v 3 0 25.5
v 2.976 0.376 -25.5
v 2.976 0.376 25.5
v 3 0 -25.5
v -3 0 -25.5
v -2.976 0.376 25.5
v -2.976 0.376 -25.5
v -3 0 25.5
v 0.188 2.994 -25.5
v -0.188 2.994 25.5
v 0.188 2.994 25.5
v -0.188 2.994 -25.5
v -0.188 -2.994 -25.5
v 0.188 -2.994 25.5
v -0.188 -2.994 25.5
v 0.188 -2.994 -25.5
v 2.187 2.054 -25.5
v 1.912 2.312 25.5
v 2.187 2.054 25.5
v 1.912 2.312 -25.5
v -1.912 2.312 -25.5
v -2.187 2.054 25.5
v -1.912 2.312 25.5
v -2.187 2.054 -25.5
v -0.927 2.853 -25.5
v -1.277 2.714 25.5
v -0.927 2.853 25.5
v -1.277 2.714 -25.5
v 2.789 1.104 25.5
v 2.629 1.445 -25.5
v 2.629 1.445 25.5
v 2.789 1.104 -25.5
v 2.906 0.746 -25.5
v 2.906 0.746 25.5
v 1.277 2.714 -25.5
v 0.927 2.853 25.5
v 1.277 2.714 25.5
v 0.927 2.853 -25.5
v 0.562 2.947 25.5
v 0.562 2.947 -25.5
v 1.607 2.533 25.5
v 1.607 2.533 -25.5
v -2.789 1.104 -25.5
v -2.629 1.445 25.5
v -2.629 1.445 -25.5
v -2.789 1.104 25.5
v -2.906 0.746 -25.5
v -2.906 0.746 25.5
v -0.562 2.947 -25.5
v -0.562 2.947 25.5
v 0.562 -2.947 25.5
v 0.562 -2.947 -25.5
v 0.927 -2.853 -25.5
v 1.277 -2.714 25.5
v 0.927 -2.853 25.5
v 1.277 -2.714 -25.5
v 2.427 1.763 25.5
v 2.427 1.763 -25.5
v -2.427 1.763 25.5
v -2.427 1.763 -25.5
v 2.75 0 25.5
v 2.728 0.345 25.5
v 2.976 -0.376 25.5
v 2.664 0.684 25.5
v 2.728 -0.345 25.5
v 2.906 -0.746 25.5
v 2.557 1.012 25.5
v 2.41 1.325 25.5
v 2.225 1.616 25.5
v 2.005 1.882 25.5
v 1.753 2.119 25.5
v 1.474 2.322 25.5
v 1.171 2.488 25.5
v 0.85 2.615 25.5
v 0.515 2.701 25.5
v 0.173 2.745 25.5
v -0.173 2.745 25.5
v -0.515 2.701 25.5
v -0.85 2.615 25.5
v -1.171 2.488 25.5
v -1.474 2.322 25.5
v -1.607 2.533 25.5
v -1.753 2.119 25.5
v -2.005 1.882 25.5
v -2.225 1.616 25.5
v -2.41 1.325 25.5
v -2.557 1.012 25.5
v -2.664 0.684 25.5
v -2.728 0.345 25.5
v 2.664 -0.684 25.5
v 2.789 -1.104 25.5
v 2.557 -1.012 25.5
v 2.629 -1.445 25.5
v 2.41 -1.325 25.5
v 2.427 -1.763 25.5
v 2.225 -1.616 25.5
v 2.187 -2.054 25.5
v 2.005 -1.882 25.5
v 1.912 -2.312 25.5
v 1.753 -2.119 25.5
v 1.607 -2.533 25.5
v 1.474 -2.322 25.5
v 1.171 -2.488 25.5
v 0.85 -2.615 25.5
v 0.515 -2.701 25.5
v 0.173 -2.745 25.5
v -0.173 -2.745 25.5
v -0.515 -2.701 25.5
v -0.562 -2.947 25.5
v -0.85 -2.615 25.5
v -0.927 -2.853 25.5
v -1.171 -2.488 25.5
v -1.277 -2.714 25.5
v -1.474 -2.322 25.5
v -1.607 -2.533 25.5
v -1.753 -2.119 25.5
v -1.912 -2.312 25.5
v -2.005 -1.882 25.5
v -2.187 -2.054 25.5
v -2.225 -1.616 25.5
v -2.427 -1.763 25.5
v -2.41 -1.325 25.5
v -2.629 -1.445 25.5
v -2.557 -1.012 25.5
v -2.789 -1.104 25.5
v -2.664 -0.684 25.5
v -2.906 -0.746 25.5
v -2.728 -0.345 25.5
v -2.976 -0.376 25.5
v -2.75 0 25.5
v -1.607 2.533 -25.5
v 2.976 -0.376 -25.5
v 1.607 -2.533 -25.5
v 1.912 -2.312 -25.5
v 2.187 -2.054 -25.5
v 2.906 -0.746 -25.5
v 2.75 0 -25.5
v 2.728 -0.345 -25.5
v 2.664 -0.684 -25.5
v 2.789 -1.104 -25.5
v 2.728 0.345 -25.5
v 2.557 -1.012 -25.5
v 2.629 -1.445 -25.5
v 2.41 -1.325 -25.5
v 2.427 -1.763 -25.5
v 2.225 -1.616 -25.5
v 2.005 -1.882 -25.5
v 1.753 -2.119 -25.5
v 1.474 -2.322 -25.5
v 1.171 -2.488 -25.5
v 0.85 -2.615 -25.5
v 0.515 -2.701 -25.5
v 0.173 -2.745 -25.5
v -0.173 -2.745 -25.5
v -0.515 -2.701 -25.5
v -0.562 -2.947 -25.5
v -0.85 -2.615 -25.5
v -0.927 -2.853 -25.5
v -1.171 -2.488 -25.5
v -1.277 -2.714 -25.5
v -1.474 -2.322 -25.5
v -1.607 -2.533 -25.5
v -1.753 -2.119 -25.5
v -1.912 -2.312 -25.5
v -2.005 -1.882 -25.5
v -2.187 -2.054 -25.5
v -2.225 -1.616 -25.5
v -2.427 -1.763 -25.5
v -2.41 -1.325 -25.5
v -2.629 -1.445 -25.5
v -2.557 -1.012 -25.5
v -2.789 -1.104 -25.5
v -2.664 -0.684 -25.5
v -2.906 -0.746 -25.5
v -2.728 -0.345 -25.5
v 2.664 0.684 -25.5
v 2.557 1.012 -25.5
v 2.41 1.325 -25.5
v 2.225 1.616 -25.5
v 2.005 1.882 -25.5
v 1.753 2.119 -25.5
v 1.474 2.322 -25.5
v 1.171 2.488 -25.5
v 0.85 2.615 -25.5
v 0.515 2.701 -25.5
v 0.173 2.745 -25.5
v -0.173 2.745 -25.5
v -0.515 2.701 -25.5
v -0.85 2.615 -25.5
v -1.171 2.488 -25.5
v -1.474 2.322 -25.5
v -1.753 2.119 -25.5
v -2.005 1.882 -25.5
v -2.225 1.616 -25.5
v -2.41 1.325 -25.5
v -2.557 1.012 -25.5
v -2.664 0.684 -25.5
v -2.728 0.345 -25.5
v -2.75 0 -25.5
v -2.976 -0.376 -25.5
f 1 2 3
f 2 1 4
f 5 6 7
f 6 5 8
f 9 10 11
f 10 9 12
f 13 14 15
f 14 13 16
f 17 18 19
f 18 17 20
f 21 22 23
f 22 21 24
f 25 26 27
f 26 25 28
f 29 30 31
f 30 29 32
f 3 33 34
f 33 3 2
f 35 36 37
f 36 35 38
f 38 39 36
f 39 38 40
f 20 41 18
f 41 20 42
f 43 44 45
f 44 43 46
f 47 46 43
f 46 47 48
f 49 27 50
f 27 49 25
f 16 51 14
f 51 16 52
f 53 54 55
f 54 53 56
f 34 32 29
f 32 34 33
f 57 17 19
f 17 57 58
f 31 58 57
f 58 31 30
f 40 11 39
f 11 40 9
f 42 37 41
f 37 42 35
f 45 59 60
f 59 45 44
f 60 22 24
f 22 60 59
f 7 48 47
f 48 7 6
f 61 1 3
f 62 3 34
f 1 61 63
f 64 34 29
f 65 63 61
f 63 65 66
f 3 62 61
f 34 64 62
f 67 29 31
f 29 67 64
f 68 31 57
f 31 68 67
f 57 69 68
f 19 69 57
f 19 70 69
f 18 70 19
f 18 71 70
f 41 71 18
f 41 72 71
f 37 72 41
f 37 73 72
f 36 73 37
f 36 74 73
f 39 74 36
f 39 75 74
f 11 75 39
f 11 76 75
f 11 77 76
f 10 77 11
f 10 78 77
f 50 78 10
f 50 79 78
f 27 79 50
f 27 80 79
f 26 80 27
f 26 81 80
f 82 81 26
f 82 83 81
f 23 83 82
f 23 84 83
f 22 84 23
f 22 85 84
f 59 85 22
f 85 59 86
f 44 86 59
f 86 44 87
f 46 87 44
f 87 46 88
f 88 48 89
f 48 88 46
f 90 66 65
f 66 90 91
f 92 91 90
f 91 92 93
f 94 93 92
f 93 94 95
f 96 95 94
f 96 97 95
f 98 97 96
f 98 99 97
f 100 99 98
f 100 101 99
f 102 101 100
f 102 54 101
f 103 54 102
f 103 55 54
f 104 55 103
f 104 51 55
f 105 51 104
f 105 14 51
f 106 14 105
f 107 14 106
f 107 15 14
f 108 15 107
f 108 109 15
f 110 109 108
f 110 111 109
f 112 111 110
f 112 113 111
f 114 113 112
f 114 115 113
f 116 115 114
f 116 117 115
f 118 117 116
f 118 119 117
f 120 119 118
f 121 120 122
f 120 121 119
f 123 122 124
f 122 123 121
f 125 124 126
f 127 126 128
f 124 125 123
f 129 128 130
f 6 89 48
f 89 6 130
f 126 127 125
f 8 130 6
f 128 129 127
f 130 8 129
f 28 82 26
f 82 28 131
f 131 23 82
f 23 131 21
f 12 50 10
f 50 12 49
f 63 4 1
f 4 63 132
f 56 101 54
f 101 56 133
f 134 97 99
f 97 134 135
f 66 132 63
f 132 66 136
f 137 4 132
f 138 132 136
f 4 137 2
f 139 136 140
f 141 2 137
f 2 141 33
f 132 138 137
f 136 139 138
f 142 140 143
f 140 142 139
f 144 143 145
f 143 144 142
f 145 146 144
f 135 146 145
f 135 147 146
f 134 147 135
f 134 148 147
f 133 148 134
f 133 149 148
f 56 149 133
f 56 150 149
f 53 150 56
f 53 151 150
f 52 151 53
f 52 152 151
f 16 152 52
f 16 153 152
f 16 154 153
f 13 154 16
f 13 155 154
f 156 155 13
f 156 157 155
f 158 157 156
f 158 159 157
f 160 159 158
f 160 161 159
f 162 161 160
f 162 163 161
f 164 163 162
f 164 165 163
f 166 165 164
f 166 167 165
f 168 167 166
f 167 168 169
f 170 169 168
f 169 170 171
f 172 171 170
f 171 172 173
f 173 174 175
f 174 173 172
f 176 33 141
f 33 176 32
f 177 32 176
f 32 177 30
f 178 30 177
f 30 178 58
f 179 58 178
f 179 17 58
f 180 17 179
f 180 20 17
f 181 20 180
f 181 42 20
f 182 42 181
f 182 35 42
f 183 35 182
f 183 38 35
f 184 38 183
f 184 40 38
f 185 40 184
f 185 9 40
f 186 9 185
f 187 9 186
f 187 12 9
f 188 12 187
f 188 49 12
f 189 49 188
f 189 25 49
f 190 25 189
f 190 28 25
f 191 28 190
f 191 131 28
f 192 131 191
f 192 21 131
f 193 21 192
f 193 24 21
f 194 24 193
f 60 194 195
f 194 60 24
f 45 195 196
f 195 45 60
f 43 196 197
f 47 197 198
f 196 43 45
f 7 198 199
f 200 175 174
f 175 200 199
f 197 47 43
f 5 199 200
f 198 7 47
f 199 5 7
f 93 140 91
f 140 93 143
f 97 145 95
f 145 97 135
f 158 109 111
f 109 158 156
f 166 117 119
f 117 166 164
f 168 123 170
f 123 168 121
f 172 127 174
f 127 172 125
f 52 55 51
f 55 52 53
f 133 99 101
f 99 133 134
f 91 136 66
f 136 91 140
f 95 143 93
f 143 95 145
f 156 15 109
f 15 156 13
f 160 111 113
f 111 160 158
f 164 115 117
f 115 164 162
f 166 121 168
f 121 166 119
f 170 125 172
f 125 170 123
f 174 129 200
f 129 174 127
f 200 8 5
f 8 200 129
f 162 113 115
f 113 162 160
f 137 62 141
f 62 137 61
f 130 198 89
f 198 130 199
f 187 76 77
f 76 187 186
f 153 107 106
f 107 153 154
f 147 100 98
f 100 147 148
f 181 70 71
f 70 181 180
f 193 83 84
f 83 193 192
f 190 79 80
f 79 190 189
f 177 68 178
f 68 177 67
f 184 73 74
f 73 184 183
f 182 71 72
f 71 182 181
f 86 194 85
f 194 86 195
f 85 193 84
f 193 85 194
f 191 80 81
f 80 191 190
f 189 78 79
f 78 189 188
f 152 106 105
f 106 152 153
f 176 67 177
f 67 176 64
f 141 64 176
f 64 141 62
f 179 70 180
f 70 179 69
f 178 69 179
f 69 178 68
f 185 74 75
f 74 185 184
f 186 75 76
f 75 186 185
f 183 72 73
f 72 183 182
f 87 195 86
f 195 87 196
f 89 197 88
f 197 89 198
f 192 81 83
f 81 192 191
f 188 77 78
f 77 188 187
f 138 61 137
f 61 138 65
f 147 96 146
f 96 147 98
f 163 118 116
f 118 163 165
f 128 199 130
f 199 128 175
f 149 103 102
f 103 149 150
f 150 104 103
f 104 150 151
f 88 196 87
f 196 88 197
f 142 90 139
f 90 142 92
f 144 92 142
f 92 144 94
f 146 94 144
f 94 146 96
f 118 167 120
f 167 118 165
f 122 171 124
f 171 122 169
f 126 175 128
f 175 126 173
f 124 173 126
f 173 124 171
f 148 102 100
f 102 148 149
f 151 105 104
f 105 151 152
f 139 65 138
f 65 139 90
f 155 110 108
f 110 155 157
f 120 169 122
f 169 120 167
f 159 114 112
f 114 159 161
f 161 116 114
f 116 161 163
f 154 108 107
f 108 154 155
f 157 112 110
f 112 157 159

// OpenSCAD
$fn = 50;


difference() {
	union() {
		translate(v = [0, 0, -25.5000000000]) {
			cylinder(h = 51, r = 3.0000000000);
		}
	}
	union() {
		translate(v = [0, 0, -100.0000000000]) {
			cylinder(h = 200, r = 2.7500000000);
		}
	}
}
